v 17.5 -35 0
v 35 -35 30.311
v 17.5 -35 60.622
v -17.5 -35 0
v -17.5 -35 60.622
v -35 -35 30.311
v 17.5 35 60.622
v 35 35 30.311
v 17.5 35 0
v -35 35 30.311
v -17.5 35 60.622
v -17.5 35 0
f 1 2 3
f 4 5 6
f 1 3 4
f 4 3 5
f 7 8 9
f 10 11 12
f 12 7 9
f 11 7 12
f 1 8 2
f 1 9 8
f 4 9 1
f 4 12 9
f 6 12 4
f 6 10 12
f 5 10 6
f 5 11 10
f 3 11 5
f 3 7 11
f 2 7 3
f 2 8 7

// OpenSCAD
/* doodle-meta {"version":1,"parameters":{"circumradius":{"label":"Hexagon Circumradius","description":"Radius of the hexagon's circumscribed circle","unit":"mm","feature":"hex_size"},"extrusion_length":{"label":"Extrusion Length","description":"Length of the prism along the Y axis","unit":"mm","feature":"prism_length"}},"features":{"hex_size":{"kind":"dimension","axis":"x","label":"Hexagon Width"},"prism_length":{"kind":"dimension","axis":"y","label":"Prism Length"}}} */

// Parameters
circumradius = 35;
extrusion_length = 70;

// Derived dimensions for a regular hexagon with point-up orientation (vertices at 90, 150, 210, 270, 330, 30 degrees)
// Width (X) = 2 * R * cos(30) = R * sqrt(3)
// Height (Z) = 2 * R
// The measured width is 70mm, which matches 2 * circumradius if the hexagon is flat-top? 
// Let's check the polygon vertices from the front view.
// Front view polygon (normalized):
// [0.24, 0.04], [0.03, 0.48], [0.22, 0.95], [0.73, 0.97], [0.97, 0.52], [0.74, 0.06]
// This looks like a "point-up" hexagon where the top and bottom are points? 
// No, looking at the coordinates:
// Top edge is between (0.24, 0.04) and (0.74, 0.06) -> roughly flat top?
// Bottom edge is between (0.22, 0.95) and (0.73, 0.97) -> roughly flat bottom?
// Left point is (0.03, 0.48)
// Right point is (0.97, 0.52)
// This is a "flat-top" hexagon (vertices at 0, 60, 120, 180, 240, 300 degrees relative to center, or rather vertices at 0, 60... wait).
// Standard flat-top hexagon has vertices at 0, 60, 120, 180, 240, 300 degrees.
// Width = 2 * R. Height = sqrt(3) * R.
// If Width = 70, then R = 35. Height = 35 * 1.732 = 60.62.
// The derived height is 61.49, which is close to 60.62.
// The derived width is 70.0.
// So the hexagon is flat-top (vertices at 0, 60, 120, 180, 240, 300 degrees in XZ plane).
// Vertices in XZ plane (centered at 0,0):
// (R, 0), (R/2, R*sqrt(3)/2), (-R/2, R*sqrt(3)/2), (-R, 0), (-R/2, -R*sqrt(3)/2), (R/2, -R*sqrt(3)/2)
// Wait, standard angle 0 is +X.
// Vertex 0: (R, 0) -> Right point
// Vertex 1: (R/2, R*sqrt(3)/2) -> Top Right
// Vertex 2: (-R/2, R*sqrt(3)/2) -> Top Left
// Vertex 3: (-R, 0) -> Left point
// Vertex 4: (-R/2, -R*sqrt(3)/2) -> Bottom Left
// Vertex 5: (R/2, -R*sqrt(3)/2) -> Bottom Right
// This matches the "flat-top" description where the top and bottom are flat edges? 
// No, if vertices are at 0, 60, 120... the edges are between them.
// Edge between 60 and 120 is horizontal at top. Yes, flat-top.
// Width (X extent) = 2 * R = 70.
// Height (Z extent) = sqrt(3) * R = 60.62.
// The spec says max_width 70, max_height 61.49. This is consistent.

// The prism is extruded along Y.
// The object sits on the build plate (Z=0).
// So we need to shift the hexagon up by Height/2.

module hex_prism_handle() {
    // Calculate hexagon height
    hex_height = circumradius * sqrt(3);
    
    // Define the hexagon polygon in XZ plane (Y=0)
    // Vertices for a flat-top hexagon centered at (0,0) in XZ
    // Angles: 0, 60, 120, 180, 240, 300
    // x = R * cos(theta), z = R * sin(theta)
    
    // We will create the polygon in the XZ plane and extrude along Y.
    // However, OpenSCAD's linear_extrude extrudes along Z by default.
    // To extrude along Y, we can rotate the polygon or use rotate_extrude? 
    // No, linear_extrude is for 2D polygons. 
    // Strategy: Create the hexagon in the XY plane (standard for linear_extrude), 
    // extrude along Z, then rotate the whole thing so the extrusion axis is Y.
    
    // Hexagon in XY plane (flat-top relative to X axis? No, let's stick to the shape).
    // If we define the hexagon in XY such that its "width" is along X and "height" along Y,
    // and extrude along Z, then rotate 90 deg around X to make Z->Y.
    
    // Let's define the hexagon in the XY plane first.
    // We want the final object to have:
    // X: Width (70mm)
    // Y: Depth (70mm) - this is the extrusion length
    // Z: Height (60.62mm)
    
    // If we extrude along Z, the "height" of the prism is the extrusion length.
    // So we want the extrusion length to be along Y.
    // So we should define the hexagon in the XZ plane? No, linear_extrude takes a 2D polygon in XY.
    
    // Approach:
    // 1. Define hexagon in XY plane.
    //    Let's say the hexagon's "width" (2R) is along X.
    //    The hexagon's "height" (sqrt(3)R) is along Y.
    // 2. Extrude along Z by extrusion_length.
    // 3. Rotate the result so that the Z-axis (extrusion direction) becomes the Y-axis.
    //    Rotate -90 degrees around X axis: Z -> Y, Y -> -Z.
    //    This would put the extrusion along Y.
    //    The original Y (hexagon height) becomes -Z.
    //    The original X (hexagon width) stays X.
    
    // Let's verify the orientation.
    // Original Hexagon in XY:
    // Vertices at angles 0, 60, 120, 180, 240, 300.
    // (R, 0), (R/2, R*sqrt(3)/2), ...
    // Width along X: 2R. Height along Y: sqrt(3)R.
    
    // After Rotate(-90, X):
    // X stays X.
    // Y becomes -Z.
    // Z becomes Y.
    
    // So the extrusion (originally Z) is now along Y. Correct.
    // The hexagon height (originally Y) is now along -Z.
    // The hexagon width (originally X) is along X.
    
    // We need the object to sit on Z=0.
    // The hexagon in XY is centered at (0,0).
    // After rotation, the hexagon is centered at (0,0,0) in XZ? 
    // The original Y range was [-sqrt(3)R/2, sqrt(3)R/2].
    // After rotation, this becomes Z range [-sqrt(3)R/2, sqrt(3)R/2] (with sign flip).
    // So the object is centered at Z=0.
    // We need to translate it up by sqrt(3)R/2 to sit on Z=0.
    
    // Let's build it.
    
    translate([0, 0, hex_height / 2]) {
        rotate([-90, 0, 0]) {
            linear_extrude(height = extrusion_length, center = true) {
                hexagon_polygon(circumradius);
            }
        }
    }
}

module hexagon_polygon(r) {
    // Flat-top hexagon in XY plane
    // Vertices at 0, 60, 120, 180, 240, 300 degrees
    polygon(
        points = [
            [r, 0],
            [r/2, r*sqrt(3)/2],
            [-r/2, r*sqrt(3)/2],
            [-r, 0],
            [-r/2, -r*sqrt(3)/2],
            [r/2, -r*sqrt(3)/2]
        ]
    );
}

hex_prism_handle();
